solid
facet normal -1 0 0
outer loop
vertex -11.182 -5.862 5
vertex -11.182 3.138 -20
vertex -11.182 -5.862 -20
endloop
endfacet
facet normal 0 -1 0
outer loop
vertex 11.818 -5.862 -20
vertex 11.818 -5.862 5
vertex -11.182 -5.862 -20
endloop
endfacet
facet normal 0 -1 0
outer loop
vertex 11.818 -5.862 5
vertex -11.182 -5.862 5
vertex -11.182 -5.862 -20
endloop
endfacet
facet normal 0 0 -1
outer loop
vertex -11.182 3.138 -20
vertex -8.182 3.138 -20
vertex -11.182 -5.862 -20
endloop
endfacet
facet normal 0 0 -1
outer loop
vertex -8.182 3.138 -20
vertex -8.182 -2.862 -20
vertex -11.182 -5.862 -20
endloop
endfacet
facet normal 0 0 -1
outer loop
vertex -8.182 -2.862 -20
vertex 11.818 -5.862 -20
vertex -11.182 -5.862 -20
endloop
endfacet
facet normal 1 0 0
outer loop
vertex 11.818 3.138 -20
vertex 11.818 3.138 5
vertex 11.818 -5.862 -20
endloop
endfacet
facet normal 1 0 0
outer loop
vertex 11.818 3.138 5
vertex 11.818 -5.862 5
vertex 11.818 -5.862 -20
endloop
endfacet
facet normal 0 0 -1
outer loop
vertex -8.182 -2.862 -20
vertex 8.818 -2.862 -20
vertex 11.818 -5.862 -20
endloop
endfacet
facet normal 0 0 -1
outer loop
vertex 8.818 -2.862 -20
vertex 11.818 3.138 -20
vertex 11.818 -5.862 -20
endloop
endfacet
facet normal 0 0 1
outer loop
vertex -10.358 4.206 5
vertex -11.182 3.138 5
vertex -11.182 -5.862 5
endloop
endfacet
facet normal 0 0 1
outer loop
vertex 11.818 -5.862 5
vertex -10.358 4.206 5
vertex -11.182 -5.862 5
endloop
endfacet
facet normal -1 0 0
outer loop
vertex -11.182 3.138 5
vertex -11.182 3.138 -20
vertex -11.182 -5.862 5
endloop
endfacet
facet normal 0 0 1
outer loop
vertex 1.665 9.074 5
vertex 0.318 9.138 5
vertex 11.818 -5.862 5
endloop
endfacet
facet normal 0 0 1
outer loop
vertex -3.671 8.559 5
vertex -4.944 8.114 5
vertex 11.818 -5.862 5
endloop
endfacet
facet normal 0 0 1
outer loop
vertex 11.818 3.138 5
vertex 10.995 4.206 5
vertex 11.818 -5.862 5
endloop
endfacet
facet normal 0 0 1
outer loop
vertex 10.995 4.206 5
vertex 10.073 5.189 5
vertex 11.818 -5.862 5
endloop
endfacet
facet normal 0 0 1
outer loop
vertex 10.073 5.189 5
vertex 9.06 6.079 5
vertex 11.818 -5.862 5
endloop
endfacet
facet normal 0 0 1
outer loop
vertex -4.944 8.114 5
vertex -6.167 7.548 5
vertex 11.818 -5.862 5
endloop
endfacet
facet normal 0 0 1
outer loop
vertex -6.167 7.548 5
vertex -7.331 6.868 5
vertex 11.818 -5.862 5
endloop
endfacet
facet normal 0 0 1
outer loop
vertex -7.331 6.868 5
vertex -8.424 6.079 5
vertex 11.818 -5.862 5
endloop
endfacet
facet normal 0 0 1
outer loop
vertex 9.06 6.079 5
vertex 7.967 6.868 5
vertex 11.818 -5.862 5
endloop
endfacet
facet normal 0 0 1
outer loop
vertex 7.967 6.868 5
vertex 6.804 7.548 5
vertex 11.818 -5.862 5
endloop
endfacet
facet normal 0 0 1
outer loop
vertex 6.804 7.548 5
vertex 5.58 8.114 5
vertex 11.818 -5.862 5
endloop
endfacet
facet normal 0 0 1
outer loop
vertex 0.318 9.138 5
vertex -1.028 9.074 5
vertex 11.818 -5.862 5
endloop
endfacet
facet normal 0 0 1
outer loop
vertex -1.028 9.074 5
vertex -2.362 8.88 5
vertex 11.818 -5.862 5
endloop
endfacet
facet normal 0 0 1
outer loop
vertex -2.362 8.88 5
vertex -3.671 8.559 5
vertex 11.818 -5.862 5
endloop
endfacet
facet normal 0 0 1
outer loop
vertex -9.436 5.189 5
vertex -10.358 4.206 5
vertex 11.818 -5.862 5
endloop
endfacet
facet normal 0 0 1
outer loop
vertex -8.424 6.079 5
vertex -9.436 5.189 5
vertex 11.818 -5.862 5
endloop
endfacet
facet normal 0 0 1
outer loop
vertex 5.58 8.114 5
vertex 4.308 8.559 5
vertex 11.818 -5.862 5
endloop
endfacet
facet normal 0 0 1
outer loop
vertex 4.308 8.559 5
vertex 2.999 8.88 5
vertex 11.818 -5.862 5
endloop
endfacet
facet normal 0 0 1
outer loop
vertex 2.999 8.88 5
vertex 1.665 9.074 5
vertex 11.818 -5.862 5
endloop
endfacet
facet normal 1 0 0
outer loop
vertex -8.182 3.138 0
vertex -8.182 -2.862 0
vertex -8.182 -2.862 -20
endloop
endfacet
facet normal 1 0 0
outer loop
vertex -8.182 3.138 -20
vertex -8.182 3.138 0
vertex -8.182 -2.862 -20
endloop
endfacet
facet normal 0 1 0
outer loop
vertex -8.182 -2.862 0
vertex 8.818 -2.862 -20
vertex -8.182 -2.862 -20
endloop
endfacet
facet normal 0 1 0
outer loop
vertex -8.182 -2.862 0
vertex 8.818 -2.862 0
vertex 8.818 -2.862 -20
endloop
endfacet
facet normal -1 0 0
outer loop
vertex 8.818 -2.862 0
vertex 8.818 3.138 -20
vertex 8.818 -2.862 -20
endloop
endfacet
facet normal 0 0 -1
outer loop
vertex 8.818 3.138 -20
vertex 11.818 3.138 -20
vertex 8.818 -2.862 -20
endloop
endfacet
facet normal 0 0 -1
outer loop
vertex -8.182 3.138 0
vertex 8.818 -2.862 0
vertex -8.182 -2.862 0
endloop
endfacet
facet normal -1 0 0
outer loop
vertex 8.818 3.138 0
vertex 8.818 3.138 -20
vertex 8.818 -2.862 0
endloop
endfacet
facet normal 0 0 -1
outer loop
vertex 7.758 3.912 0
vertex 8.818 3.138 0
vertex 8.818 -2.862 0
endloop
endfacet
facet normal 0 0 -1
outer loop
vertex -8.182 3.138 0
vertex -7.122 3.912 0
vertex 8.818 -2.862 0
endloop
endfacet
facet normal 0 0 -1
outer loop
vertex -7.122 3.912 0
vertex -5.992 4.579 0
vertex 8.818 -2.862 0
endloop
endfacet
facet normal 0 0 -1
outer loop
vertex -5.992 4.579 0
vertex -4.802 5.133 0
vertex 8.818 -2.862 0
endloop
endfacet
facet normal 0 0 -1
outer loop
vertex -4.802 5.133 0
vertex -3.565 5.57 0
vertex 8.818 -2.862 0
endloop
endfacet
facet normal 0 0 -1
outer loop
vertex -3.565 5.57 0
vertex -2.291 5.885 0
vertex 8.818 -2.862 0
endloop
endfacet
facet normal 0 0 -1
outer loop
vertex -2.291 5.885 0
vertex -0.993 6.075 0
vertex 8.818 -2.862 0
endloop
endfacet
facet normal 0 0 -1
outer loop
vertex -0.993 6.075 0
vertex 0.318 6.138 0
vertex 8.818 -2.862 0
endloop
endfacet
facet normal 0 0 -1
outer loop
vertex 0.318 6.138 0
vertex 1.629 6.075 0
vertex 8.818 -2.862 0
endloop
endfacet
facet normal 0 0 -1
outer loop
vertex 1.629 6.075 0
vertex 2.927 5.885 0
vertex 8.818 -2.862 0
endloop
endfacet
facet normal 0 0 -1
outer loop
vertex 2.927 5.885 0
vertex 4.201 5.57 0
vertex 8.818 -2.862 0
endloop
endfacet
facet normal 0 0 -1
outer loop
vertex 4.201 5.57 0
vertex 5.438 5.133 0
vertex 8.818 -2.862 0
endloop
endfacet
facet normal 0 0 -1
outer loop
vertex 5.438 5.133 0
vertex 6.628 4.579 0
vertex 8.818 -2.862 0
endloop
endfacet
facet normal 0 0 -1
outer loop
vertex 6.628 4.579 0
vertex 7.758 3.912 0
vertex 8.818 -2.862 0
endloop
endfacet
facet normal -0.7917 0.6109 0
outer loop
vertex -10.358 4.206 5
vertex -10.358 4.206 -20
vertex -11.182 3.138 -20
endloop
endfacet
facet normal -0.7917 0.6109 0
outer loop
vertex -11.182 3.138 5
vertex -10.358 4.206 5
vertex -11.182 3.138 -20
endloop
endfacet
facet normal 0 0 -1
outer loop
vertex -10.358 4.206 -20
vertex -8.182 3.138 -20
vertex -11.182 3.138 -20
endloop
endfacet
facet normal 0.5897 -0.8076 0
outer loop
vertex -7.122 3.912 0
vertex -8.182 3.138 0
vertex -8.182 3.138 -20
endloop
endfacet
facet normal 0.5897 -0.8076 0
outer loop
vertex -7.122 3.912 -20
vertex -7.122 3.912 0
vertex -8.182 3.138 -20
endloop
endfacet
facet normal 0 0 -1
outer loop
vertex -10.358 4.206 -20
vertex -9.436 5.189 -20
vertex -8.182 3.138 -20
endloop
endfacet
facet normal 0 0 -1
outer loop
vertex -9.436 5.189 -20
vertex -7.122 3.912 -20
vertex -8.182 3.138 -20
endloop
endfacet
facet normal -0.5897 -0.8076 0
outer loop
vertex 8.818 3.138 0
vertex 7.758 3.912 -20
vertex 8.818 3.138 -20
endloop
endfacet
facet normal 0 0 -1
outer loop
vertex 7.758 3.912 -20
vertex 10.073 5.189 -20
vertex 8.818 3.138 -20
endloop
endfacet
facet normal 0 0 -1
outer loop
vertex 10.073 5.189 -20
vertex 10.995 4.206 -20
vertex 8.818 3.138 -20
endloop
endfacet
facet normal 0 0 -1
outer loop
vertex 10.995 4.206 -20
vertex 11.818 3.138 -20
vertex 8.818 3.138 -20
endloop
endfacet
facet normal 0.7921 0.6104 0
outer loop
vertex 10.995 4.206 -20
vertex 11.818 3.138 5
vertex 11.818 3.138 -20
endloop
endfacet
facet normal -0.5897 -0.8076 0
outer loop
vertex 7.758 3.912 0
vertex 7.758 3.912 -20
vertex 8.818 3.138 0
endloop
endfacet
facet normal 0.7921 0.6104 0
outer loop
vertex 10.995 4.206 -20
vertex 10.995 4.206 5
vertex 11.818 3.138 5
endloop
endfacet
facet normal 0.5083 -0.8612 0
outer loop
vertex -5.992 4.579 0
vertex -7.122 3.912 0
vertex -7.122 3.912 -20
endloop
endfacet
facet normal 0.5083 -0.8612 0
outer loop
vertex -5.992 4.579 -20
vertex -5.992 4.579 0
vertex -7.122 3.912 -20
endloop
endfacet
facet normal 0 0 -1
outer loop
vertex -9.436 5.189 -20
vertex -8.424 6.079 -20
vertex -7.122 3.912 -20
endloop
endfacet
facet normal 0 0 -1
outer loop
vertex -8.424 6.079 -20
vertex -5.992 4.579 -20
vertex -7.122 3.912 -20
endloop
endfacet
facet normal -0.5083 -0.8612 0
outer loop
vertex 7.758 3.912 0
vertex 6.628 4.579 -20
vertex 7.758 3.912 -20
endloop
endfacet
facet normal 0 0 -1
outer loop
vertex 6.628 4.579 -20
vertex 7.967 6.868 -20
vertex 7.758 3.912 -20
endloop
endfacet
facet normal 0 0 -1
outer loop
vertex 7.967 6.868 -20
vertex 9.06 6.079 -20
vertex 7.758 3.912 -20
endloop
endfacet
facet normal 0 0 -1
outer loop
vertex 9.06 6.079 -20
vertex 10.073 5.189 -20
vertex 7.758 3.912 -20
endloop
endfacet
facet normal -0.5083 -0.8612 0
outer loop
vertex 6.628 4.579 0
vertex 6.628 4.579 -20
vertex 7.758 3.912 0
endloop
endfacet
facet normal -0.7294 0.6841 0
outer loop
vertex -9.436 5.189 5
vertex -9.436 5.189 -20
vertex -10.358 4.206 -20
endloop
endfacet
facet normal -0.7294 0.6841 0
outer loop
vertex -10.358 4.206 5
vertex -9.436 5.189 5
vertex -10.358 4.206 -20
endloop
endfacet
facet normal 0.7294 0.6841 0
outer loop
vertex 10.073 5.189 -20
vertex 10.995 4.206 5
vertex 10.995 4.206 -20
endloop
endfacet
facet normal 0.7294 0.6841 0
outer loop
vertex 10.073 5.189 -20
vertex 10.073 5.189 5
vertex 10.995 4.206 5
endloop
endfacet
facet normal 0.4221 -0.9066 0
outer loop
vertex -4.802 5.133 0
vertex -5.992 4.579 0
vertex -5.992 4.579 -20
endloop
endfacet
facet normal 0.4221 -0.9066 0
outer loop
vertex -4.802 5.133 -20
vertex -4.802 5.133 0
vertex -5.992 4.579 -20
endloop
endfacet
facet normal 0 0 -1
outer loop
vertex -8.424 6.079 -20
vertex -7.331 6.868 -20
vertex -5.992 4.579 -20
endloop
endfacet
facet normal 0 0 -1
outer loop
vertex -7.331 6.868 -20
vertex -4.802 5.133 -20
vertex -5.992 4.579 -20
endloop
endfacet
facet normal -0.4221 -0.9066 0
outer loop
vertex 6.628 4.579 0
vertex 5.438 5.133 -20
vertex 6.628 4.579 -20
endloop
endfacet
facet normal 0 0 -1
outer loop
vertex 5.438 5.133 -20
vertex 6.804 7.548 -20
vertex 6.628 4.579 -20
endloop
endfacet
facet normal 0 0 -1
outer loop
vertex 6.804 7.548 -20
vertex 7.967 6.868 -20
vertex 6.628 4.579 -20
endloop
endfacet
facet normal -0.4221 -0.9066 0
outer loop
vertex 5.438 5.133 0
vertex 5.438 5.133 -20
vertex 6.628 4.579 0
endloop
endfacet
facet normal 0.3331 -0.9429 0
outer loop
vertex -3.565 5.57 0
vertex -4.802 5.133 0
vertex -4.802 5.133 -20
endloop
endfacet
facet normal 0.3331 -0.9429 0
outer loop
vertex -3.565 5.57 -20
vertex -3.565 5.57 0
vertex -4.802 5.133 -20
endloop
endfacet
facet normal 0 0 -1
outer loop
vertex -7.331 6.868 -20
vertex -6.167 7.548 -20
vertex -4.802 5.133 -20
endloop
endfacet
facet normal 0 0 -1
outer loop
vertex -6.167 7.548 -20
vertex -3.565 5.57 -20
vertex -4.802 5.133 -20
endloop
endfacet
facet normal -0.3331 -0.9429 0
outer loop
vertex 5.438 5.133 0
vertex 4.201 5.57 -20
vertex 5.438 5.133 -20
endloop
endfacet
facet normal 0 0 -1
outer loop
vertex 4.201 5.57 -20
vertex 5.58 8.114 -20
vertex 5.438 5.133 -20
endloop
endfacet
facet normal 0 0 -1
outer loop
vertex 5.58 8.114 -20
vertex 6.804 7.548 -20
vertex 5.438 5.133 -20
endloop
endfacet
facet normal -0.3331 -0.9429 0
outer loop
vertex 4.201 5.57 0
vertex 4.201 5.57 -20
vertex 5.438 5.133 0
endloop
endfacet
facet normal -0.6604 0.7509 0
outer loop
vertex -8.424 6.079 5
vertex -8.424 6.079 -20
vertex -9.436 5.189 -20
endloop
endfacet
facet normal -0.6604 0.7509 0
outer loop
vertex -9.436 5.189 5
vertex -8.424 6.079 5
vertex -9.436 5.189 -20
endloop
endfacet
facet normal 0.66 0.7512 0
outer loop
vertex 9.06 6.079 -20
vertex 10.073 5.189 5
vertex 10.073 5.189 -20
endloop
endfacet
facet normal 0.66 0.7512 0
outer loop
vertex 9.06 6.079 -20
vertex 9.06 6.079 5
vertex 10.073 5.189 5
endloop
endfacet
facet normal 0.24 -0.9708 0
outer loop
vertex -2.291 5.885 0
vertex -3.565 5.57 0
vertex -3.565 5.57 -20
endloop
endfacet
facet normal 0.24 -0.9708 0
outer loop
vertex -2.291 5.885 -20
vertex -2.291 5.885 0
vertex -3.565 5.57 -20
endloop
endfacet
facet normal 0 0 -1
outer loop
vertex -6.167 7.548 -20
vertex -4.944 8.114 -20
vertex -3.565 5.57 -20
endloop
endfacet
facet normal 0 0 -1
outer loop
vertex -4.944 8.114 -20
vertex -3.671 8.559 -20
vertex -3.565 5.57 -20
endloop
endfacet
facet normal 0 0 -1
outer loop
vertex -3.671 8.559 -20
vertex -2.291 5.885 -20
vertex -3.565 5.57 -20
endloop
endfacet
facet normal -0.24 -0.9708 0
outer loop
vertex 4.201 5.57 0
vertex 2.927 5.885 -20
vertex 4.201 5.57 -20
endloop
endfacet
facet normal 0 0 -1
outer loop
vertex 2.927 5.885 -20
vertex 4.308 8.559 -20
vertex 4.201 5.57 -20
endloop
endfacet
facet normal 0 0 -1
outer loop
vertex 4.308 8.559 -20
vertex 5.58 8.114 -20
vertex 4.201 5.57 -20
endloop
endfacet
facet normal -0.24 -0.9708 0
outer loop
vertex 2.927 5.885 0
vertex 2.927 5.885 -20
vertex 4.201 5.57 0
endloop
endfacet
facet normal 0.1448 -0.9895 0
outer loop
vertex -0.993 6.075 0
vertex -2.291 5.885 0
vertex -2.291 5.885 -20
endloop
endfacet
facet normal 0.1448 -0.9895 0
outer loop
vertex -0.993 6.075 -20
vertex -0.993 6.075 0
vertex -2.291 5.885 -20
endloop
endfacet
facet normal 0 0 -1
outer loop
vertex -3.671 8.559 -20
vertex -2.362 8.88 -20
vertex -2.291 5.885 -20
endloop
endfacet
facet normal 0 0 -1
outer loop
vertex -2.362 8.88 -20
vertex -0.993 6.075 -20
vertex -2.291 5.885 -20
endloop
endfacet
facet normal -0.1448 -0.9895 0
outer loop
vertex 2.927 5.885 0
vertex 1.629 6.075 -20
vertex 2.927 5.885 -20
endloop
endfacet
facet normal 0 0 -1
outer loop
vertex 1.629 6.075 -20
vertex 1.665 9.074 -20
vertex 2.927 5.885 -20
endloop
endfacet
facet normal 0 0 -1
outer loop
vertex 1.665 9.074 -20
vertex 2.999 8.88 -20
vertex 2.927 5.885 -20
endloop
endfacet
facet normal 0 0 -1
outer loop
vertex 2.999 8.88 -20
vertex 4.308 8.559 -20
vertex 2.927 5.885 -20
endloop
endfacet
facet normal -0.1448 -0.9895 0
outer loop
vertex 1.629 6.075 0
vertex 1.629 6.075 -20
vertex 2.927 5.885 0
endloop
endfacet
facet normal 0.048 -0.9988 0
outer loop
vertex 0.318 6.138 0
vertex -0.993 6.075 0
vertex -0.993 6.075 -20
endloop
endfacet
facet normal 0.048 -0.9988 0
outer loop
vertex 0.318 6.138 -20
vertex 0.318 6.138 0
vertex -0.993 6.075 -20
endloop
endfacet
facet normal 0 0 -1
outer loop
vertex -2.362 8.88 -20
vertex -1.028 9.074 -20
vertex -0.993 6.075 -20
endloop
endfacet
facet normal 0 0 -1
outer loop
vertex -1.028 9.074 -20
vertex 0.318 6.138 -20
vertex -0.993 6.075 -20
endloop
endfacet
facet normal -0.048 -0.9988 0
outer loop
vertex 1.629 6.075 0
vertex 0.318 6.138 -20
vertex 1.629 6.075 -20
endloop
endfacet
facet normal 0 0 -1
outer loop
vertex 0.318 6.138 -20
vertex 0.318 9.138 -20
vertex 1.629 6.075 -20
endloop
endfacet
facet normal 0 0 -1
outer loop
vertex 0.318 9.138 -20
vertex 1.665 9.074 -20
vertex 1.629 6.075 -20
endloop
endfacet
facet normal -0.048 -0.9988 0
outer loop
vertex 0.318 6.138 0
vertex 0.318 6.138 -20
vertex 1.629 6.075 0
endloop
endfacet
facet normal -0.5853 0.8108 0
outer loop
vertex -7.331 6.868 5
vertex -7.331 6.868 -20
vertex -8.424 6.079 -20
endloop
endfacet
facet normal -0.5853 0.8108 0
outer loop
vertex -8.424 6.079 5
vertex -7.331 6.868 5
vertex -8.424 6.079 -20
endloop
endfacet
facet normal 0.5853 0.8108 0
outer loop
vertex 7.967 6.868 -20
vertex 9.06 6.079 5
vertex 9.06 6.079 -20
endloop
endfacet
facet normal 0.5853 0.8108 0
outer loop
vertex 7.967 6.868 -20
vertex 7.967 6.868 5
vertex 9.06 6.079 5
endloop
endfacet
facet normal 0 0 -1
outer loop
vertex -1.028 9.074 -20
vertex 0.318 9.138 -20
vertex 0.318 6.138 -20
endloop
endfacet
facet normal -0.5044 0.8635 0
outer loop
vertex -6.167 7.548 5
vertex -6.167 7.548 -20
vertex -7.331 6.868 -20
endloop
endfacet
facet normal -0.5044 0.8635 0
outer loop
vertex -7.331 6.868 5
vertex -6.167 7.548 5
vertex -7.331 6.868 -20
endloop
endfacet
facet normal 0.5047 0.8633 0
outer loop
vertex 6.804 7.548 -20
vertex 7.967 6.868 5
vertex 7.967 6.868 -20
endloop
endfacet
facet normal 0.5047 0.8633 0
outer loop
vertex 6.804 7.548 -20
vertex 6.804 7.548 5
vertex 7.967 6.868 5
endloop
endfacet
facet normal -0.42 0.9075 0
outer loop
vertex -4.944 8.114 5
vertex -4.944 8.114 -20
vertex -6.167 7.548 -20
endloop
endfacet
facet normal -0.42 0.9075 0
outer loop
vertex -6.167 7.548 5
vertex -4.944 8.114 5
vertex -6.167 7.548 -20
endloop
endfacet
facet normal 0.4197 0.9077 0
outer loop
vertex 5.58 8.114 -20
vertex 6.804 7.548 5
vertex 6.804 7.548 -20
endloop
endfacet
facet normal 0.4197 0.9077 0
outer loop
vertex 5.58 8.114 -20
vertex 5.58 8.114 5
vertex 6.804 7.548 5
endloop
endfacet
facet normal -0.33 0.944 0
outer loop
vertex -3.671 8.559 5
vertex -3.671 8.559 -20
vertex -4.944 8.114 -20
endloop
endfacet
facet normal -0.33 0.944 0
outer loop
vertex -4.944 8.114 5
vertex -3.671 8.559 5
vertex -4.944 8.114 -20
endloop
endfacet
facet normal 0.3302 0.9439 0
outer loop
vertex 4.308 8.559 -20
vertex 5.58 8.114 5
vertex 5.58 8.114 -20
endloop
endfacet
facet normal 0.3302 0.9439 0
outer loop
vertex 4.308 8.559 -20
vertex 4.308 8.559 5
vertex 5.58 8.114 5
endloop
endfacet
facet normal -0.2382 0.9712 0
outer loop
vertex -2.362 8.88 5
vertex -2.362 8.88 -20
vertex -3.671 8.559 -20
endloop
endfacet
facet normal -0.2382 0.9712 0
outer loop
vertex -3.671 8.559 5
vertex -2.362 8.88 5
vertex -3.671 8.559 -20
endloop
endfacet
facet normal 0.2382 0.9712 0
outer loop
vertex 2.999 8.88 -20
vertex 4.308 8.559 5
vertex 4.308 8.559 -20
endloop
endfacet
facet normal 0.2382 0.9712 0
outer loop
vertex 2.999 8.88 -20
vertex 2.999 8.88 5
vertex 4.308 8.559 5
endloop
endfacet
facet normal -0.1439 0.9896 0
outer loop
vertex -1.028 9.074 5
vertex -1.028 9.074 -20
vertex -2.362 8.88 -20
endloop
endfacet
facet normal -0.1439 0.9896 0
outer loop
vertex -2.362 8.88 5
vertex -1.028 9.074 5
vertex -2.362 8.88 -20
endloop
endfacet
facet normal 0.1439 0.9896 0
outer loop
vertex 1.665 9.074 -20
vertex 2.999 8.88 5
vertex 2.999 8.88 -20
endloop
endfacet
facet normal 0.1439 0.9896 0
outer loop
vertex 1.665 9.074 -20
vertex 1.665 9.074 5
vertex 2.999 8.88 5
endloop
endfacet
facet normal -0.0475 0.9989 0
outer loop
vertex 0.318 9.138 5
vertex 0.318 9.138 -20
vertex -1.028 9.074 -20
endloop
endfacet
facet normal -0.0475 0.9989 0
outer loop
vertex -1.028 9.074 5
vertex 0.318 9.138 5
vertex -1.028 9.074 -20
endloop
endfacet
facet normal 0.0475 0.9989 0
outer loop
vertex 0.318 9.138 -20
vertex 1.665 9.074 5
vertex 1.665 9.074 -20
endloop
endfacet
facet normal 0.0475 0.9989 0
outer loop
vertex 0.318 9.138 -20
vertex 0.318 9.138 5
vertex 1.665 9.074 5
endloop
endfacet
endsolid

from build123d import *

# Parameters (mm, degrees)
EXTRUDE_1_DEPTH      = 5
EXTRUDE_2_DEPTH      = 5
EXTRUDE_2_DEPTH_BACK = 20


with BuildPart() as part:
    # 草圖1 → 填料-伸長1 (new body)
    with BuildSketch(Plane.XY):
        with BuildLine():
            Line((-8.181868209, 3.138333333), (-8.181868209, -2.861666667))
            Line((-8.181868209, -2.861666667), (8.818131791, -2.861666667))
            Line((8.818131791, -2.861666667), (8.818131791, 3.138333333))
            ThreePointArc((8.818131791, 3.138333333), (0.318131791, 6.138333333), (-8.181868209, 3.138333333))
        make_face()
    extrude(amount=EXTRUDE_1_DEPTH)

    # 草圖1<4> → 填料-伸長2 (add, two sides: drawn at the far end of the back side and taken through both)
    with BuildSketch(Plane.XY.offset(-EXTRUDE_2_DEPTH_BACK)):
        with BuildLine():
            Line((-11.181868209, 3.138333333), (-11.181868209, -5.861666667))
            Line((-11.181868209, -5.861666667), (11.818131791, -5.861666667))
            Line((11.818131791, -5.861666667), (11.818131791, 3.138333333))
            ThreePointArc((11.818131791, 3.138333333), (0.318131791, 9.138333333), (-11.181868209, 3.138333333))
        make_face()
        with BuildLine():
            Line((-8.181868209, 3.138333333), (-8.181868209, -2.861666667))
            Line((-8.181868209, -2.861666667), (8.818131791, -2.861666667))
            Line((8.818131791, -2.861666667), (8.818131791, 3.138333333))
            ThreePointArc((8.818131791, 3.138333333), (0.318131791, 6.138333333), (-8.181868209, 3.138333333))
        make_face(mode=Mode.SUBTRACT)
    extrude(amount=EXTRUDE_2_DEPTH + EXTRUDE_2_DEPTH_BACK)


solid = part.part
